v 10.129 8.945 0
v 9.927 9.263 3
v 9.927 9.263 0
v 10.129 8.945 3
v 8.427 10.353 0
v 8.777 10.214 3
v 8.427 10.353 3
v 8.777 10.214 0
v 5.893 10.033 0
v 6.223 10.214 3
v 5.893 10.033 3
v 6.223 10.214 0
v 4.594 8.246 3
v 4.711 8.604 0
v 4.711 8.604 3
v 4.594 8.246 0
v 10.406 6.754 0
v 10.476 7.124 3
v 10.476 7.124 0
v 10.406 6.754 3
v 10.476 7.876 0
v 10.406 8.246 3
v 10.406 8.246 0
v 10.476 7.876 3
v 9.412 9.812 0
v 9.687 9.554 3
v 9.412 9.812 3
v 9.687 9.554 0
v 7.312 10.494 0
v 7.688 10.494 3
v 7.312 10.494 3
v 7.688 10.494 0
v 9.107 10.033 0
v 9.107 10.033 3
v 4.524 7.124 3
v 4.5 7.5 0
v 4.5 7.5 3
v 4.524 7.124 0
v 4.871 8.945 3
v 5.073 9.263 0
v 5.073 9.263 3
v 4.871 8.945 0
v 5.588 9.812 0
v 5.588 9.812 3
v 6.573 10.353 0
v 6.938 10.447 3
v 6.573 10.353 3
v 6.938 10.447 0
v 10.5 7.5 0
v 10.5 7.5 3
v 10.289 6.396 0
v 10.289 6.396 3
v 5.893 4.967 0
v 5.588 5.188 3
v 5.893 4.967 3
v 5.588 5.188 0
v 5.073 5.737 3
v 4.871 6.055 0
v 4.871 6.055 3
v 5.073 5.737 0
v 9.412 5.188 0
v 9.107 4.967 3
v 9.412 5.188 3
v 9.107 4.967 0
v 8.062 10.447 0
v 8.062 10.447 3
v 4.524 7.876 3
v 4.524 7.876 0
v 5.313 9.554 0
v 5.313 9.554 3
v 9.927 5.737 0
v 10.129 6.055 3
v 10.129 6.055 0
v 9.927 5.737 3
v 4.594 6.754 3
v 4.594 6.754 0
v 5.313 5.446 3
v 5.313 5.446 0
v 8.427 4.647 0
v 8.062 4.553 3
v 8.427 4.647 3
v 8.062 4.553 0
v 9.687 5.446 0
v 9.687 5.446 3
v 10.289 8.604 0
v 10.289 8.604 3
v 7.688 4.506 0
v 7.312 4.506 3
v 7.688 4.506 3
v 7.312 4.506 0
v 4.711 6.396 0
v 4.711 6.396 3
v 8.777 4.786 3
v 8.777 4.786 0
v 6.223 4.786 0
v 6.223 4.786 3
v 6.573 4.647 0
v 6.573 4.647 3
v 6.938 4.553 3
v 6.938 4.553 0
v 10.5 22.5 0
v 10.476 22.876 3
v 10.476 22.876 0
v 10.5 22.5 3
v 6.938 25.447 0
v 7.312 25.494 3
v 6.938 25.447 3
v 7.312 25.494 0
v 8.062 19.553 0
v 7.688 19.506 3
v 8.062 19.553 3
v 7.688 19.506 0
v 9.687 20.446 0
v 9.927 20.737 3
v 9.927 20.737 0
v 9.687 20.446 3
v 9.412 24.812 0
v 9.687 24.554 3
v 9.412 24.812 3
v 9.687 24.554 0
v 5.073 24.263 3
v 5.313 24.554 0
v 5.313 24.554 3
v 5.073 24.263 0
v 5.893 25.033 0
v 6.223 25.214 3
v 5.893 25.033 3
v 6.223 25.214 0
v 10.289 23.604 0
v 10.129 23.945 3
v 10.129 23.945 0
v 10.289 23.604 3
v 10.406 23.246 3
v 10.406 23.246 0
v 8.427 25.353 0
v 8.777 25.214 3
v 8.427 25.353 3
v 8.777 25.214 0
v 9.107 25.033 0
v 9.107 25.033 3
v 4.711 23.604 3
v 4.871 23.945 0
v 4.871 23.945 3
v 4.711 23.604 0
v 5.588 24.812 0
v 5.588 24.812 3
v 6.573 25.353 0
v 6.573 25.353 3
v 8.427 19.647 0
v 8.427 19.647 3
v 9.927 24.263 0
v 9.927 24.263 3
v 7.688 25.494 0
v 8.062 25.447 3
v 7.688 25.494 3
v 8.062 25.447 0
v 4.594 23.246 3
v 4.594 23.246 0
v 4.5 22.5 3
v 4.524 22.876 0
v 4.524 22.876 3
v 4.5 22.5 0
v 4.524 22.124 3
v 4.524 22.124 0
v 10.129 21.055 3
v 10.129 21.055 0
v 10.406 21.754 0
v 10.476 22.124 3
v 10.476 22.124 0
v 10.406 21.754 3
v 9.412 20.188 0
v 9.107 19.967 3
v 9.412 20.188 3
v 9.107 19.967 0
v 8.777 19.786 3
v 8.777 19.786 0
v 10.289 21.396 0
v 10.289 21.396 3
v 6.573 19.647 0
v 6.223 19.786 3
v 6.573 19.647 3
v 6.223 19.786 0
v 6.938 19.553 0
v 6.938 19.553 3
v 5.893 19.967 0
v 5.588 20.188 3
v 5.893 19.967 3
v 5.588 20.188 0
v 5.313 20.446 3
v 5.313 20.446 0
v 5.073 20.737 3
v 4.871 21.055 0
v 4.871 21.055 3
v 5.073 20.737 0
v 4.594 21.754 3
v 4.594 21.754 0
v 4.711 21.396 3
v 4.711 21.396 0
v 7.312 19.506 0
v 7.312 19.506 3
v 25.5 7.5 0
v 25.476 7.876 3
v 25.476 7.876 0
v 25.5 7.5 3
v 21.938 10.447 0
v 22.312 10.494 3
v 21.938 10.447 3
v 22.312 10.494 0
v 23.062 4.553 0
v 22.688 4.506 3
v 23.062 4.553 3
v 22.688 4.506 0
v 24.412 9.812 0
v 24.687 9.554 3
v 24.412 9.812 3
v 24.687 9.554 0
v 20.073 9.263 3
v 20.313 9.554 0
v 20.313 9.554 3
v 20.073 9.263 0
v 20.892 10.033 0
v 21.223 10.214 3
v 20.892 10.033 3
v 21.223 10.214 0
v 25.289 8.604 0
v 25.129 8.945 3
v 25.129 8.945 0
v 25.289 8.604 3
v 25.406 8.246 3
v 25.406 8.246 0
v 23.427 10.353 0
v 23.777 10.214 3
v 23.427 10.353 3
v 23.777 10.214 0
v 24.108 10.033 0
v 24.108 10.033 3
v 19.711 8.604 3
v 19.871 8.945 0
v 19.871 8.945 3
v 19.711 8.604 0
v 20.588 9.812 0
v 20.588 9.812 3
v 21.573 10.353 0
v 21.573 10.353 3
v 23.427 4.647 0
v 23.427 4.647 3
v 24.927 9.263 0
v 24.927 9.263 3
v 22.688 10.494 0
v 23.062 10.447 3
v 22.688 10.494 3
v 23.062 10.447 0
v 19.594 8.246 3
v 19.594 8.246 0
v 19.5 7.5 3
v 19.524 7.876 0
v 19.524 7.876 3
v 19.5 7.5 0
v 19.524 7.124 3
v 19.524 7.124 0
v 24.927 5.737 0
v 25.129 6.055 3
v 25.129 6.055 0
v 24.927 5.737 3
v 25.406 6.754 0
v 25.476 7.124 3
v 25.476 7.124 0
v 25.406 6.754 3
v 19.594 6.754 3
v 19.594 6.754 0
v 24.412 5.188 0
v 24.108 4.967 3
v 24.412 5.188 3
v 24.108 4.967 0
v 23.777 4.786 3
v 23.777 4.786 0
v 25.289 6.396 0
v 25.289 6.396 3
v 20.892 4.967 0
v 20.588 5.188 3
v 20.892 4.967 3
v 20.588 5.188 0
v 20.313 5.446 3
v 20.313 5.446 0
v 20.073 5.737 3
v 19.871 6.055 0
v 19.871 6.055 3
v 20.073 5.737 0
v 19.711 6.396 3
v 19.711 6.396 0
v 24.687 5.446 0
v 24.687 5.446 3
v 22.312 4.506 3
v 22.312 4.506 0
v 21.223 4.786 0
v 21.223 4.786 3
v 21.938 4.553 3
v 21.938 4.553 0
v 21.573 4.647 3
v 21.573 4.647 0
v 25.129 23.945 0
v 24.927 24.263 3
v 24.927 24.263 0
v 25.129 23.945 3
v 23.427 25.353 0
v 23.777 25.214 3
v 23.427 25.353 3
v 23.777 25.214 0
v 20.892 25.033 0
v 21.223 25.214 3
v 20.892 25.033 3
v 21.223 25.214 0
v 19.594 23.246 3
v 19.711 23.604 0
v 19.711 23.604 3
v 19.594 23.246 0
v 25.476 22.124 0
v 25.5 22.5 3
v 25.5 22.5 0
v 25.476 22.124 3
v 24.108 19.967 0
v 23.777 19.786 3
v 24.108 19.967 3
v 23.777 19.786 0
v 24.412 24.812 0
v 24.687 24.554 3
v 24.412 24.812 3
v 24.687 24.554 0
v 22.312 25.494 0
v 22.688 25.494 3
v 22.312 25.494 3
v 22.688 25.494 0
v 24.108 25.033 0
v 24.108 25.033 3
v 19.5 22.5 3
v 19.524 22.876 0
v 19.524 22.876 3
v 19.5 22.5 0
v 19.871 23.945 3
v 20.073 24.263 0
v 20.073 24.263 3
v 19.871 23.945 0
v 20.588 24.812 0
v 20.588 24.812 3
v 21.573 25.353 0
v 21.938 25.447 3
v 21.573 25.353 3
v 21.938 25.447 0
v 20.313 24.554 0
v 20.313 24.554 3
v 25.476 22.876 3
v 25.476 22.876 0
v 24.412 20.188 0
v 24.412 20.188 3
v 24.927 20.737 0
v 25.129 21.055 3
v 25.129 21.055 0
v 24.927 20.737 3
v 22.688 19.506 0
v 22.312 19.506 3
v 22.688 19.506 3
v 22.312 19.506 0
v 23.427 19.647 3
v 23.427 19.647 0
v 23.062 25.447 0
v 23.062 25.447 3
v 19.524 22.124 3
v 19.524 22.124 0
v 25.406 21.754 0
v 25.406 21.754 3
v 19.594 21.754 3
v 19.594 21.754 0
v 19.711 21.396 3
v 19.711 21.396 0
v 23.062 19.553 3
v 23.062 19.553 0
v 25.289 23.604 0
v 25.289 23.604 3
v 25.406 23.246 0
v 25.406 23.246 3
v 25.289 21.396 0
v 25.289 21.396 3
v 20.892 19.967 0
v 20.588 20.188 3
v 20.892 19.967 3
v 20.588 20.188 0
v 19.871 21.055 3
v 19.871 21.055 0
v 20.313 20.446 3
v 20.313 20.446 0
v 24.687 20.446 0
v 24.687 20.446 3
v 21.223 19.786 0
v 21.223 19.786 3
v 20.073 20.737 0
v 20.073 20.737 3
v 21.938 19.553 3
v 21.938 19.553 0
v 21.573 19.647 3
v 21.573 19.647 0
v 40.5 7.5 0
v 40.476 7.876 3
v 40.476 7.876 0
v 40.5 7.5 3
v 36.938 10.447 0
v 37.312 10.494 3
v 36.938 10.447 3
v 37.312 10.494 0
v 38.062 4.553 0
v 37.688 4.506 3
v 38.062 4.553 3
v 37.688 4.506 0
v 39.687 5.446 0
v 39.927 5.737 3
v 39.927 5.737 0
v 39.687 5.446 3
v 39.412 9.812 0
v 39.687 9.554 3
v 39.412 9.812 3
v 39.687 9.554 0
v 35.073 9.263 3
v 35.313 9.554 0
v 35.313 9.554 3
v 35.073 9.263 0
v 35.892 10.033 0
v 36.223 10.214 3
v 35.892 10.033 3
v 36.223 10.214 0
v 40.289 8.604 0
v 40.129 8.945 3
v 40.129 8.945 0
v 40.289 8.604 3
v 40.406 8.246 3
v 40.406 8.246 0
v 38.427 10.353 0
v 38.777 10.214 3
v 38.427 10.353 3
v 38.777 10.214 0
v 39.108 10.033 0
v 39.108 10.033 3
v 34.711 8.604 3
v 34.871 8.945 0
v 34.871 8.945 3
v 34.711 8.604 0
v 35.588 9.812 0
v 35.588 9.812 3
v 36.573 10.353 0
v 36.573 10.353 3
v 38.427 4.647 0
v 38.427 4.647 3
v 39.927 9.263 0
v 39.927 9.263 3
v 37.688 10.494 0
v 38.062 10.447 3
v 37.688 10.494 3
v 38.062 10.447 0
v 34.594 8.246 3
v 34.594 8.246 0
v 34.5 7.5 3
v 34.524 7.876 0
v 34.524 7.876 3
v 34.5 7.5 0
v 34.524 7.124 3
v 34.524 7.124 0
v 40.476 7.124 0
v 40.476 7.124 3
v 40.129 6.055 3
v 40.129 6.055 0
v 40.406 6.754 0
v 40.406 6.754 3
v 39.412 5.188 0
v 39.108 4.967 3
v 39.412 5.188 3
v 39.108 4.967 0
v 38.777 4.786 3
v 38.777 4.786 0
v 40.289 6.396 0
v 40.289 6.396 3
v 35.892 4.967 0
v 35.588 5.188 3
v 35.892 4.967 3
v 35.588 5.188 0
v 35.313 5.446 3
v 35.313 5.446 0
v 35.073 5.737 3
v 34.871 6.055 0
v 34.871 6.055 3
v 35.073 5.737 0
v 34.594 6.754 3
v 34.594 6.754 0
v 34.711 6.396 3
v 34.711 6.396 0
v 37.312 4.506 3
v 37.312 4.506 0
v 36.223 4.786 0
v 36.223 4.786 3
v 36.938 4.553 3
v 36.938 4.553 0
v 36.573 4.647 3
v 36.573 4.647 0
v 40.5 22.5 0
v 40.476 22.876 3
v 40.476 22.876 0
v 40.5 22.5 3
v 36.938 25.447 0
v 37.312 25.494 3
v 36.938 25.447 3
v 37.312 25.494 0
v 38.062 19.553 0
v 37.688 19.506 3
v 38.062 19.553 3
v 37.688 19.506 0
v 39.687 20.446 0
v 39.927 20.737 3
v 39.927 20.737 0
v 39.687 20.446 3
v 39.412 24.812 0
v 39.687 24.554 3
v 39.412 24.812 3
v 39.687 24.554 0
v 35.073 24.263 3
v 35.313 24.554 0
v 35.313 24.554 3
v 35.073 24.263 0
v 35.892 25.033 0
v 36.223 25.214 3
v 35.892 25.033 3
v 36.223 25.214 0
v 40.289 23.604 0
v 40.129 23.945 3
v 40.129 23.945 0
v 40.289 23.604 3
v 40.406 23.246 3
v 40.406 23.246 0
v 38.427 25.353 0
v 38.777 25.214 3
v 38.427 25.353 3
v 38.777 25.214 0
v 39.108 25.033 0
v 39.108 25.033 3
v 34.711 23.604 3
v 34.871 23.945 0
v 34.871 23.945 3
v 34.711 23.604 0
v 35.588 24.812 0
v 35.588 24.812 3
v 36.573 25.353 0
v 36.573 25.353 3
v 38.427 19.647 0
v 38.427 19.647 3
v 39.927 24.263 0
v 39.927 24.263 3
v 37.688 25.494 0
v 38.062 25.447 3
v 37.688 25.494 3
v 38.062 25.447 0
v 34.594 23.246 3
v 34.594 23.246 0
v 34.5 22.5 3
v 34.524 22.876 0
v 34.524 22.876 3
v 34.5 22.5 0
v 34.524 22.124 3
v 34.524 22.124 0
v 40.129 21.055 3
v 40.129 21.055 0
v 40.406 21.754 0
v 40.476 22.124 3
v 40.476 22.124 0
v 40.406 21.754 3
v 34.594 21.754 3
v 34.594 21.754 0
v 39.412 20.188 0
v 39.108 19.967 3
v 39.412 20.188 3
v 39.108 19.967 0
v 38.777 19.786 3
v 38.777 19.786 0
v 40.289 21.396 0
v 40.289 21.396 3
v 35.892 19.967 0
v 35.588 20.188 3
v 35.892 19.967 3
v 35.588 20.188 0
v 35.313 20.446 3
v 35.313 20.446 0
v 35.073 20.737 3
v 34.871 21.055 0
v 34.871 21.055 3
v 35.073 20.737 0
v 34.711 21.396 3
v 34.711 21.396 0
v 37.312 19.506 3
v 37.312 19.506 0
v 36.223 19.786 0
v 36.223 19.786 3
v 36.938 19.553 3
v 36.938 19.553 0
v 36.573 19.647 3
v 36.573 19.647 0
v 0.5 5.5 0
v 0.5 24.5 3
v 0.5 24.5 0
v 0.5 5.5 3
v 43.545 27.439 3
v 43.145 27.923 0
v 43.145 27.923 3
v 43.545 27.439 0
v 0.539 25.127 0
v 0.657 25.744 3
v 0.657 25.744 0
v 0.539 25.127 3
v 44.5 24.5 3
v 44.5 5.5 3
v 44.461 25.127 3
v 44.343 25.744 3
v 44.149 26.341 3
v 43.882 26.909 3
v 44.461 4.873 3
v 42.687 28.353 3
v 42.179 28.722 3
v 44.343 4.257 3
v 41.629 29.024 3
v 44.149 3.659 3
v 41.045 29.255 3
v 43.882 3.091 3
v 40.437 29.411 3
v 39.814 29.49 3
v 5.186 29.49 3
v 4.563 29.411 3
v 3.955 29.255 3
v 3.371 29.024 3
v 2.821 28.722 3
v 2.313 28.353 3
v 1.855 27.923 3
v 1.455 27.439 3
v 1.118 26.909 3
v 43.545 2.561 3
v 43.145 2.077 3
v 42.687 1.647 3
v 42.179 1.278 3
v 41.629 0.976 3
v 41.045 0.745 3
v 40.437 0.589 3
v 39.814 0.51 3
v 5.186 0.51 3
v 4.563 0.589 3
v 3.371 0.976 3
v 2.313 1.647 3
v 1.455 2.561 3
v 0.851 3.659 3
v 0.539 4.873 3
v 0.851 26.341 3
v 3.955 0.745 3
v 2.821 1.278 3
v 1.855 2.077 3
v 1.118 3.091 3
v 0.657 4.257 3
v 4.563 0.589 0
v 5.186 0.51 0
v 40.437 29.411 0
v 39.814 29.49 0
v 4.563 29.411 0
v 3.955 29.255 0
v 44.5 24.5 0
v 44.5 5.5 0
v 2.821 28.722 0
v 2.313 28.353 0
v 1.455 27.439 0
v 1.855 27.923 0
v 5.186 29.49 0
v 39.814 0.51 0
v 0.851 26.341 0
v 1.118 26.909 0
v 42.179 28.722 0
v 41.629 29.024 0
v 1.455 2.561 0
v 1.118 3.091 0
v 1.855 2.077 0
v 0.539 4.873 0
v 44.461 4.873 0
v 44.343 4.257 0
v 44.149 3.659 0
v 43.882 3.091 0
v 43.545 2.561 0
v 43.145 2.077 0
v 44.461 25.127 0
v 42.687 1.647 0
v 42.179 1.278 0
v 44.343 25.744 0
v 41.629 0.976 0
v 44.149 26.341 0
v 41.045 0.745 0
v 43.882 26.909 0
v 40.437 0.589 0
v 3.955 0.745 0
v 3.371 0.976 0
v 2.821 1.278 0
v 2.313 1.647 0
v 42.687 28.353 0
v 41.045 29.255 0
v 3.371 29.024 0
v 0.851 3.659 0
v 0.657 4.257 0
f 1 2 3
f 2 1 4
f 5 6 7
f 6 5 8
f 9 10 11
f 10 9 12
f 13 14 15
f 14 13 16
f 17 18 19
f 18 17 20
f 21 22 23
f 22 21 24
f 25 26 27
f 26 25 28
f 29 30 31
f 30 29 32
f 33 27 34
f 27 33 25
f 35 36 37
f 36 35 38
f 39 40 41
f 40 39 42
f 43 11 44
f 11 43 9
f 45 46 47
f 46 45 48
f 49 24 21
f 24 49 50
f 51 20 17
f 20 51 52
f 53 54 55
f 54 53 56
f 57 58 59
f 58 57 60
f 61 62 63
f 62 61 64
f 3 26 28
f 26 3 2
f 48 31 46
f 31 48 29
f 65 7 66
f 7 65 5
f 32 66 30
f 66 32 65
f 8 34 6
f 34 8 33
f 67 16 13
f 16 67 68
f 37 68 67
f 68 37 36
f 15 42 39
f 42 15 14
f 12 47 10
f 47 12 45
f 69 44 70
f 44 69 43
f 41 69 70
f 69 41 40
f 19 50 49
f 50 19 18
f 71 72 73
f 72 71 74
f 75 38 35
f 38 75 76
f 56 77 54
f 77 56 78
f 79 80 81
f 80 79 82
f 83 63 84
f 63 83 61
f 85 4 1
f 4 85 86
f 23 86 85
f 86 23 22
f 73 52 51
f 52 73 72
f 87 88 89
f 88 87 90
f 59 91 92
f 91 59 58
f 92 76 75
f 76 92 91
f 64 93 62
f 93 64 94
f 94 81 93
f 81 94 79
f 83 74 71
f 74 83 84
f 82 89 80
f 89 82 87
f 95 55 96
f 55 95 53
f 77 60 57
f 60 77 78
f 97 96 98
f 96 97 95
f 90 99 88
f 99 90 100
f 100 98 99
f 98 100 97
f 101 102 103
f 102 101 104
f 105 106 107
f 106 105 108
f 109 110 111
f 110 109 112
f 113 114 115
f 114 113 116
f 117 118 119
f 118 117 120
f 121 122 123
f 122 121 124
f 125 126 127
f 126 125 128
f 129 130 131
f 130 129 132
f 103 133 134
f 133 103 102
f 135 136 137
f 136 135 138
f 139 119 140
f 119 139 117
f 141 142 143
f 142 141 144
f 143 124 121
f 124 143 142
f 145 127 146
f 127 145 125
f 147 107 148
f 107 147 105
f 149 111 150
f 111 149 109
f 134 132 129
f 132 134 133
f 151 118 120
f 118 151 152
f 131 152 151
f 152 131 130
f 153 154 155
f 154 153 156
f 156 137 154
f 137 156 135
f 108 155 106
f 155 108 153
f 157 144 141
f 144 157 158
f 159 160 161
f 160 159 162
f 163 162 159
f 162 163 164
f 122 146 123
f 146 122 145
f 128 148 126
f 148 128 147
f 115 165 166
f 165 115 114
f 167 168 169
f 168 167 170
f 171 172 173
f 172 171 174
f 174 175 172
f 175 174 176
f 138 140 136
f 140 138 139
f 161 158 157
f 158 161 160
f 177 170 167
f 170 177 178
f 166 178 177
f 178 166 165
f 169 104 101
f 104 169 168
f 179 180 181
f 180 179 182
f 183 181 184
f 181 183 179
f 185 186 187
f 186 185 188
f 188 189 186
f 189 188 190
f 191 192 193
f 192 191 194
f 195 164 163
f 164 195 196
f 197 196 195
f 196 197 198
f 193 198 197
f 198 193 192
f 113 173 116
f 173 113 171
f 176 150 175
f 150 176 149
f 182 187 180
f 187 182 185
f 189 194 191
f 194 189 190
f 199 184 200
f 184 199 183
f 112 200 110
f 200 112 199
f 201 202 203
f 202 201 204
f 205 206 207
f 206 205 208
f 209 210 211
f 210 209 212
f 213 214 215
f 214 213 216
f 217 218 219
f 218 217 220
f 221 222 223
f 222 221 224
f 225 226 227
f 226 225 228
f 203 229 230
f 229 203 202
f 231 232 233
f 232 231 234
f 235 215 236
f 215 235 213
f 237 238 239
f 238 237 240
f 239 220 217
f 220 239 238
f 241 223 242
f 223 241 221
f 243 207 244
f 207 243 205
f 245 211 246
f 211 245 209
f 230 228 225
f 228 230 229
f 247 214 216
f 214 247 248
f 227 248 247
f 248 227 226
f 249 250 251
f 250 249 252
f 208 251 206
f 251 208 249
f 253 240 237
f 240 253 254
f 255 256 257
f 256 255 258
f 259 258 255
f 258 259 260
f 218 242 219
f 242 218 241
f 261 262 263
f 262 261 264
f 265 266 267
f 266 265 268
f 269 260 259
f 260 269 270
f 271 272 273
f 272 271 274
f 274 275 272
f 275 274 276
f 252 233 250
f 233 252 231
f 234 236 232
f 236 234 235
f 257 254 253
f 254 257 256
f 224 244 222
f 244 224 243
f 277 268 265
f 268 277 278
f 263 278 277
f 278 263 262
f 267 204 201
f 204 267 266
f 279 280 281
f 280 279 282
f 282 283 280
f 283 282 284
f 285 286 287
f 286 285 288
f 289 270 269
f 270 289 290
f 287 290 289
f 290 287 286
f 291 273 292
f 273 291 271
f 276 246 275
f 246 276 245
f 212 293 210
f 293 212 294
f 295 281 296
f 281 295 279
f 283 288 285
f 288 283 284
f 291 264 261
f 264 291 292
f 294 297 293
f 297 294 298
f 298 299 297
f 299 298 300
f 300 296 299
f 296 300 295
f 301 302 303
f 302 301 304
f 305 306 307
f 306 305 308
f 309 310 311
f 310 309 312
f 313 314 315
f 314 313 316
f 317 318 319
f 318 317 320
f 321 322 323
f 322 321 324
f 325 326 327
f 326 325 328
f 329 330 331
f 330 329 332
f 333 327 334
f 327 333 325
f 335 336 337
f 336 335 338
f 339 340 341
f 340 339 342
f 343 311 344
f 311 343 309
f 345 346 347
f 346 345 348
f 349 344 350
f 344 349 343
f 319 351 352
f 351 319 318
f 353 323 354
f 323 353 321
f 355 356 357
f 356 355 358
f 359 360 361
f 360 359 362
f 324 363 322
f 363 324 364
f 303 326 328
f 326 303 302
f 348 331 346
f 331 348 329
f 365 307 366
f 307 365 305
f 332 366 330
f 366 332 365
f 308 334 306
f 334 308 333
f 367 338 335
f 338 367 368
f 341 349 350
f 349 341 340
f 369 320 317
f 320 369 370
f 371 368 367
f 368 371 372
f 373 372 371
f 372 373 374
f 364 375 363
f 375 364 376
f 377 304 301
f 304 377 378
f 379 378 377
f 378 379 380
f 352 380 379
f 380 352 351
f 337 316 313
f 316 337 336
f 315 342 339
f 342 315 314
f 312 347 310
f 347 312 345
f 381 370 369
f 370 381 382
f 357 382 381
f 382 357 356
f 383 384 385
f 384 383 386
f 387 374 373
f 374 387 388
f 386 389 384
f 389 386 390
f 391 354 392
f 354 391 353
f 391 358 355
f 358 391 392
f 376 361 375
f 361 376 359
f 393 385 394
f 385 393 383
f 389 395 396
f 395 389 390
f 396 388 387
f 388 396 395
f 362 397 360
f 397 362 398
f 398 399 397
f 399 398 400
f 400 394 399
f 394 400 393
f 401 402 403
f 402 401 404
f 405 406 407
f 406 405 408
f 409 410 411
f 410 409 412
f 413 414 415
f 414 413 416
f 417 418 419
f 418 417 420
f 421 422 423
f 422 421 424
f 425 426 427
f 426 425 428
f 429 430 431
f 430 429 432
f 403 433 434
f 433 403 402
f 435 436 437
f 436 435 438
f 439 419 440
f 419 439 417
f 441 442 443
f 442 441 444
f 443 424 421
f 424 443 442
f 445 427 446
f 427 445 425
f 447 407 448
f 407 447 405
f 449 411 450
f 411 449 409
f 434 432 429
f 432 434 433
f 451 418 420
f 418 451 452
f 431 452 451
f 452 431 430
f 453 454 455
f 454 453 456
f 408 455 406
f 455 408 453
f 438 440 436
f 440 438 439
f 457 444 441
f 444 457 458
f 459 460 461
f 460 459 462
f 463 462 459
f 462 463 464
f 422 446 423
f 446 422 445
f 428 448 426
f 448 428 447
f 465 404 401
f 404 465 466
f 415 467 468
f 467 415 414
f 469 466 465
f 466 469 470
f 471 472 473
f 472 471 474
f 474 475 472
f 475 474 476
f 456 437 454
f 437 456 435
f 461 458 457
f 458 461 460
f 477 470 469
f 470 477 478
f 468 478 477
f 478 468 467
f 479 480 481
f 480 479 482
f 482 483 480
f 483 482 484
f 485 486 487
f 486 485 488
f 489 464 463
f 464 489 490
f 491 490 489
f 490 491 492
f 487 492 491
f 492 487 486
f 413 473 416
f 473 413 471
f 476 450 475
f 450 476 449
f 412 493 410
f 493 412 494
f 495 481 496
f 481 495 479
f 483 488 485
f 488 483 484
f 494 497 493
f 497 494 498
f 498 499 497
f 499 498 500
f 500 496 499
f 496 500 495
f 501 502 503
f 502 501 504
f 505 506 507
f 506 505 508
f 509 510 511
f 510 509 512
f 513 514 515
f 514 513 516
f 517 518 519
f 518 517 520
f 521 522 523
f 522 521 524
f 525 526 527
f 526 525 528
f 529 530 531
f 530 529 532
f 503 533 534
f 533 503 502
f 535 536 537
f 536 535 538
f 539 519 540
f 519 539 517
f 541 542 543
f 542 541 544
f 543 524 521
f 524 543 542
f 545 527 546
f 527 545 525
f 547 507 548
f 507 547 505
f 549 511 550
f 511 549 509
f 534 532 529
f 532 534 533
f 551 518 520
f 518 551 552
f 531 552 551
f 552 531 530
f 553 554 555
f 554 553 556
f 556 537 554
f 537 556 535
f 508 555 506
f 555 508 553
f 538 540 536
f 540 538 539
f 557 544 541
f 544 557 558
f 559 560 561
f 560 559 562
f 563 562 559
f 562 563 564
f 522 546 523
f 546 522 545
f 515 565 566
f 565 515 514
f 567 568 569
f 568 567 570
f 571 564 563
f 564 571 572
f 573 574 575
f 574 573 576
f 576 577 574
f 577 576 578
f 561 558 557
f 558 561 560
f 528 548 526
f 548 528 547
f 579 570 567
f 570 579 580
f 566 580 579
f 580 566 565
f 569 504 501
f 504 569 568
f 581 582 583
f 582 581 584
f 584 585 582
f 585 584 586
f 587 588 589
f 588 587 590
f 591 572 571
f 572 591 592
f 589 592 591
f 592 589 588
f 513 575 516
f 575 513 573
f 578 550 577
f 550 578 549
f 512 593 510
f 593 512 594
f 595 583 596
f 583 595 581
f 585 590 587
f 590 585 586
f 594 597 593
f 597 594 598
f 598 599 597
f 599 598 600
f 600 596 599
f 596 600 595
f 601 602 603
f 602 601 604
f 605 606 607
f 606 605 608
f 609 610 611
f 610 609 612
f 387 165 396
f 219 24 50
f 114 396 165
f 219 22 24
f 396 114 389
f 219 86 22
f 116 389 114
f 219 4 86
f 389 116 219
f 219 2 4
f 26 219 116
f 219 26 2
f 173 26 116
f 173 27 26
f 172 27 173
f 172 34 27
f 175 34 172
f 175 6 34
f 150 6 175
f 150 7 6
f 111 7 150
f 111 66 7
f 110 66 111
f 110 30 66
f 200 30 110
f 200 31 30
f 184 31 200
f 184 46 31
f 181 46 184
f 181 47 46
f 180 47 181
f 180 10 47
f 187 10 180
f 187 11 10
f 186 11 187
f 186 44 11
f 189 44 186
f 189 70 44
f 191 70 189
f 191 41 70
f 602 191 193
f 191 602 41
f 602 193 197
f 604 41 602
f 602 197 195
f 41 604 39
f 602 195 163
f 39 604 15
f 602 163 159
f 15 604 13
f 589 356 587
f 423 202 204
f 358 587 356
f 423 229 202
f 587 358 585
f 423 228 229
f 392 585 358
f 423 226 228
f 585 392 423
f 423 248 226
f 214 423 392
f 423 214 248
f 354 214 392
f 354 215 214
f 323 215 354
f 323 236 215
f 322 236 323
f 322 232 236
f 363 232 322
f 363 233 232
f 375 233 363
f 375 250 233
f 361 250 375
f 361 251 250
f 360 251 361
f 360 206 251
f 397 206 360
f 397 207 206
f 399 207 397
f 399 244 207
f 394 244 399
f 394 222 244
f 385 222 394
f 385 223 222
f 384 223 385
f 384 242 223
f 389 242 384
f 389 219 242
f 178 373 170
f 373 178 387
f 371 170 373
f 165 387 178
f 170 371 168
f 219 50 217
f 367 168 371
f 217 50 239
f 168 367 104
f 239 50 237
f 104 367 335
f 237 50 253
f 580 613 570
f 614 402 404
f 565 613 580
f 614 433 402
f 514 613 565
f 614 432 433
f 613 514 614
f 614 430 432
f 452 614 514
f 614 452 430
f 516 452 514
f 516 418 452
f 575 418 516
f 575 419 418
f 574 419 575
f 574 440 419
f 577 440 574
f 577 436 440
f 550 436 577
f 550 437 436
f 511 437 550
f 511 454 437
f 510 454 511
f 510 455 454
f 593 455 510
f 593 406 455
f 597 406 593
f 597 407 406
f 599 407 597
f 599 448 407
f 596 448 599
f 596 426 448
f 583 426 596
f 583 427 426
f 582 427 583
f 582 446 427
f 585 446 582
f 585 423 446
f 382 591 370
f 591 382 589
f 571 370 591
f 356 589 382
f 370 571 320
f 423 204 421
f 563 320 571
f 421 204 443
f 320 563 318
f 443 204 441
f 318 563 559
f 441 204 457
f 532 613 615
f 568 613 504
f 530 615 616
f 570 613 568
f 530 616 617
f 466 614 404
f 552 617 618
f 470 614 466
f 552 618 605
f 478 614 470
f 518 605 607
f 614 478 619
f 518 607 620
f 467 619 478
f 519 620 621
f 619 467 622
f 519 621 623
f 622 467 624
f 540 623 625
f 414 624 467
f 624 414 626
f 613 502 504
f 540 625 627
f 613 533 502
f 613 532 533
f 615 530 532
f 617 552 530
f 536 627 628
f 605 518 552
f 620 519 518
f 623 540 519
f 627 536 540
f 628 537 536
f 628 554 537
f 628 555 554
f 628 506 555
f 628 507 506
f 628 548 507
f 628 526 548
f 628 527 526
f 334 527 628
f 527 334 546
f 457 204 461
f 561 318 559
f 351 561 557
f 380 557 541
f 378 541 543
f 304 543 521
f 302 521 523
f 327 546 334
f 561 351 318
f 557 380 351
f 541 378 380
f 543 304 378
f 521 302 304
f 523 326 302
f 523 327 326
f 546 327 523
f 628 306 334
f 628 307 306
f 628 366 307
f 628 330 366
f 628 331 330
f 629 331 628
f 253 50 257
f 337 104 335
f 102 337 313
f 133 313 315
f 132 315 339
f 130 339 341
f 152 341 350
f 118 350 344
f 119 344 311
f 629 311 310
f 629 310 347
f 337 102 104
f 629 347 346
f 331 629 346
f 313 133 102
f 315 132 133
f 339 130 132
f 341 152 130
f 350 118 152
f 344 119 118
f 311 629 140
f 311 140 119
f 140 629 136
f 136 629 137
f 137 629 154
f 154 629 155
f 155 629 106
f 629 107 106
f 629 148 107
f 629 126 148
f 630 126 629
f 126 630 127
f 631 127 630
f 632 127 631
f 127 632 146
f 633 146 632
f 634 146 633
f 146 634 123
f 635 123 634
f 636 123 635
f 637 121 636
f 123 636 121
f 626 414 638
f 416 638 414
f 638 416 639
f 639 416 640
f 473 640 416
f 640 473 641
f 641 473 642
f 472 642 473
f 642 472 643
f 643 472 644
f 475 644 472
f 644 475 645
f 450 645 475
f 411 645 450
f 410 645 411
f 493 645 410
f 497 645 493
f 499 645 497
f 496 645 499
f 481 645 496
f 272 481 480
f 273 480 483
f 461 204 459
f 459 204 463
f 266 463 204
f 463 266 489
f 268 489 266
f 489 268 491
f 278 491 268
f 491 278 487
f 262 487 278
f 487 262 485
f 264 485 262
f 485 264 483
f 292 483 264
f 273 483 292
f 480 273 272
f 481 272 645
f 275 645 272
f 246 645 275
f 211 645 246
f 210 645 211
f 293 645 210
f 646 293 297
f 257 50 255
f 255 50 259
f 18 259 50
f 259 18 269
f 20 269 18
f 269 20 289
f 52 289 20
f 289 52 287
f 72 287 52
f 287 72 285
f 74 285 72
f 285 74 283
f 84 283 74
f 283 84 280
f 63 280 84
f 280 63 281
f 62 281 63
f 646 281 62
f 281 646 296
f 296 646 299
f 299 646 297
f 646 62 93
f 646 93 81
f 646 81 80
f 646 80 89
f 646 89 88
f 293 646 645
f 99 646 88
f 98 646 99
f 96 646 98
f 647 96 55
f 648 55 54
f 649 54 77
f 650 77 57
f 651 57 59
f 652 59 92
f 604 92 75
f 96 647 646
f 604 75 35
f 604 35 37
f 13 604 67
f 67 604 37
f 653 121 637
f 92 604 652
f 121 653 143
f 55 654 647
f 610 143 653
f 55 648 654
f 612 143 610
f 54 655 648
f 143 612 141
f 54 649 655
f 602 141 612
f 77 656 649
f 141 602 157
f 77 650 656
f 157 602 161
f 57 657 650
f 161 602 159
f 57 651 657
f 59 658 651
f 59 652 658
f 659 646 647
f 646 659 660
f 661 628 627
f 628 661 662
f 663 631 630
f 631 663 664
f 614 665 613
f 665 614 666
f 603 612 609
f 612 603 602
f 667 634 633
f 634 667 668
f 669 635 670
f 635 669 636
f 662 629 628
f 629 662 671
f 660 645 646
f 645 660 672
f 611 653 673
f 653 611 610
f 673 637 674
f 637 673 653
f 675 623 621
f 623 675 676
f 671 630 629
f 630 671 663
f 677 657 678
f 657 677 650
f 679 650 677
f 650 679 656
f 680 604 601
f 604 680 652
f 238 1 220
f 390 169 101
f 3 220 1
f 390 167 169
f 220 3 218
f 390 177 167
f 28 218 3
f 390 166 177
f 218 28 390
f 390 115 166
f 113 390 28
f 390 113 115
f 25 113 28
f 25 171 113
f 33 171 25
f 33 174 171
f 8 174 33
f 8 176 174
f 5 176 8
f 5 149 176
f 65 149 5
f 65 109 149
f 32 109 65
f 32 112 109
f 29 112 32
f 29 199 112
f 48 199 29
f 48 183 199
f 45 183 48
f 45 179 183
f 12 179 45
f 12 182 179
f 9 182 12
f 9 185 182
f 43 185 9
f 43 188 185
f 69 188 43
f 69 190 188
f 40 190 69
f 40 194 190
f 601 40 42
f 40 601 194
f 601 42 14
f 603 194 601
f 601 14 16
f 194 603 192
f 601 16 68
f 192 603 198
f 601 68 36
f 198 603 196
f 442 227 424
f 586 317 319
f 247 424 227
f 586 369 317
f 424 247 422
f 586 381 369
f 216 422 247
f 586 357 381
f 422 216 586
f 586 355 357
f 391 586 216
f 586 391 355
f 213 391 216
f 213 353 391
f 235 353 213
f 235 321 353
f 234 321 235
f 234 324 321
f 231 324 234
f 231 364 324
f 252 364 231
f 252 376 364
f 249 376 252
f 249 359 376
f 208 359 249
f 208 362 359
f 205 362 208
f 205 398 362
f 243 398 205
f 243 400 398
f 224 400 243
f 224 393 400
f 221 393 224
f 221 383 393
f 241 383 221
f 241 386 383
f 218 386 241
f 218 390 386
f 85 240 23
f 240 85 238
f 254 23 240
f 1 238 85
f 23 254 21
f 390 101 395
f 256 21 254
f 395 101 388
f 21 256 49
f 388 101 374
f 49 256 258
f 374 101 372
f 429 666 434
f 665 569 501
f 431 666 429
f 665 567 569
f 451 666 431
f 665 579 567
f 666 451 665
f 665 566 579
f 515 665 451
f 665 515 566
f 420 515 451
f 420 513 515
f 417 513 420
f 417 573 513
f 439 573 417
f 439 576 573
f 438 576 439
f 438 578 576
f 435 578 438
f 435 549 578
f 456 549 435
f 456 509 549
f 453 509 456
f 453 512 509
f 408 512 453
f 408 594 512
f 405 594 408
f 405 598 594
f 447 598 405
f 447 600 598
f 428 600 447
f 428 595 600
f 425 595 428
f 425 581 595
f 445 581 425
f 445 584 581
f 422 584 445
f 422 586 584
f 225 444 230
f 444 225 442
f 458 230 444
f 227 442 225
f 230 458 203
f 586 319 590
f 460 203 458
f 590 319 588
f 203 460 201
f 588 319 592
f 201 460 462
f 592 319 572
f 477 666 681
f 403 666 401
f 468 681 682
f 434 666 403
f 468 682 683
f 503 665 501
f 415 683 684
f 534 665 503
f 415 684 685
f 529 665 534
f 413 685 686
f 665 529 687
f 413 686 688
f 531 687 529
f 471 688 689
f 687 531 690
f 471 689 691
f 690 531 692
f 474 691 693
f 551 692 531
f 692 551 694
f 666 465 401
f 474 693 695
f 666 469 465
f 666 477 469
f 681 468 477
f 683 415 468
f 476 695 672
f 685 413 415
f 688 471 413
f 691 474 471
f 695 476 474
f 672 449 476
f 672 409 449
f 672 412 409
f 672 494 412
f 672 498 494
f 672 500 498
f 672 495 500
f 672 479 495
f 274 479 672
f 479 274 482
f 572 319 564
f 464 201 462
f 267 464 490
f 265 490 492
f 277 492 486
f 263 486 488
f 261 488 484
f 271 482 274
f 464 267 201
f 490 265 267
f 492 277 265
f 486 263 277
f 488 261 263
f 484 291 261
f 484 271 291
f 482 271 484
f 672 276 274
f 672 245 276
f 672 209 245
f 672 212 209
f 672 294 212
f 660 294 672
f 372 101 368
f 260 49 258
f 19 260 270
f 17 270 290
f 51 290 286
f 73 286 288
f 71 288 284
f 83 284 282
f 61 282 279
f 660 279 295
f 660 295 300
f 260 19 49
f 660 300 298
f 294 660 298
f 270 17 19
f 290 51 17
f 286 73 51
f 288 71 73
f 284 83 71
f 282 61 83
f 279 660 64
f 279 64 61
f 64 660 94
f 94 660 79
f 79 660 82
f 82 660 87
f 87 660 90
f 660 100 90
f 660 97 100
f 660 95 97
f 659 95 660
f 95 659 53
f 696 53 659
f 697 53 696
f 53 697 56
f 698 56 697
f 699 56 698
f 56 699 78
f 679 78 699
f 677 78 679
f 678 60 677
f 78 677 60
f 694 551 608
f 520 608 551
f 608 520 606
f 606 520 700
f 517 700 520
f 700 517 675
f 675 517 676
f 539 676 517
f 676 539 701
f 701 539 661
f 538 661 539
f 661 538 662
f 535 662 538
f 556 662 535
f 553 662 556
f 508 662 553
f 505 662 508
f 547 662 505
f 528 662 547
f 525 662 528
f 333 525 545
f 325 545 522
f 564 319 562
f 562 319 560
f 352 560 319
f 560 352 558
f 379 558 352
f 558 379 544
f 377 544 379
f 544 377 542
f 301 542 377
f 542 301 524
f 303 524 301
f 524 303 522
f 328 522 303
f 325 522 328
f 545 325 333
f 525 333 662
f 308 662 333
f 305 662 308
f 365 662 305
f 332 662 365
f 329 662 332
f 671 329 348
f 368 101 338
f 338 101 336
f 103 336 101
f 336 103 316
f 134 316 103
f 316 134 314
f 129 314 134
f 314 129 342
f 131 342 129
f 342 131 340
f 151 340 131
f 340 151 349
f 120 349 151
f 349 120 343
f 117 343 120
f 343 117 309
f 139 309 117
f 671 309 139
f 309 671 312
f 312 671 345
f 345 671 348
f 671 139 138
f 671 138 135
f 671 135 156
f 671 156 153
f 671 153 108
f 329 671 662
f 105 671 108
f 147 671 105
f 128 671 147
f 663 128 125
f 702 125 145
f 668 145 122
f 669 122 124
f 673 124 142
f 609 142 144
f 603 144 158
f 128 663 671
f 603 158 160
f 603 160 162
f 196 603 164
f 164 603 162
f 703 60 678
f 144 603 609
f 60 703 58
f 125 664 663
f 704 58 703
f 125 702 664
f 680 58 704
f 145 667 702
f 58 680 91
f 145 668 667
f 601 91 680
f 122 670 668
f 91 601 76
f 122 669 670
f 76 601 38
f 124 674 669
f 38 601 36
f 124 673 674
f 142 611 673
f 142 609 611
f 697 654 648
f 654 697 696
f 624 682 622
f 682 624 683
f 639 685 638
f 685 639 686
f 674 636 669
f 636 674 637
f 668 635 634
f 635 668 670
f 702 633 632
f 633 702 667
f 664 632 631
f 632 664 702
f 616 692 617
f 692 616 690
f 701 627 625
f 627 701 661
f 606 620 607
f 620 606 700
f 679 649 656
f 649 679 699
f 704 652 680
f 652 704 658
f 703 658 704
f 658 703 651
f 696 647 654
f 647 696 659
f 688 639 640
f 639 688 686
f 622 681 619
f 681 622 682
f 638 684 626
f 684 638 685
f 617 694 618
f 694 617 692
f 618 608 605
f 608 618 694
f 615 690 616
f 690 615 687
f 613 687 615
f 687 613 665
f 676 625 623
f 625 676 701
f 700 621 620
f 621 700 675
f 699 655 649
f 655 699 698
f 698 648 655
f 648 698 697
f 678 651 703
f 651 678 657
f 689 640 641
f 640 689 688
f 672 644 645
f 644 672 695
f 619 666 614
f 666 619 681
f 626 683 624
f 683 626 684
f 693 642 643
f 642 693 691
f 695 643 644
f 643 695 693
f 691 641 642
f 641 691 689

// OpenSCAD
// Generated by SolidPython 1.1.3 on 2023-01-09 14:53:22
$fn = 50;


difference() {
	union() {
		translate(v = [22.5000000000, 15.0000000000, 0]) {
			rotate(a = [0, 0, 0]) {
				hull() {
					translate(v = [-17.0000000000, 9.5000000000, 0]) {
						rotate(a = [0, 0, 0]) {
							translate(v = [0, 0, 0]) {
								rotate(a = [0, 0, 0]) {
									cylinder(h = 3, r = 5);
								}
							}
						}
					}
					translate(v = [17.0000000000, 9.5000000000, 0]) {
						rotate(a = [0, 0, 0]) {
							translate(v = [0, 0, 0]) {
								rotate(a = [0, 0, 0]) {
									cylinder(h = 3, r = 5);
								}
							}
						}
					}
					translate(v = [-17.0000000000, -9.5000000000, 0]) {
						rotate(a = [0, 0, 0]) {
							translate(v = [0, 0, 0]) {
								rotate(a = [0, 0, 0]) {
									cylinder(h = 3, r = 5);
								}
							}
						}
					}
					translate(v = [17.0000000000, -9.5000000000, 0]) {
						rotate(a = [0, 0, 0]) {
							translate(v = [0, 0, 0]) {
								rotate(a = [0, 0, 0]) {
									cylinder(h = 3, r = 5);
								}
							}
						}
					}
				}
			}
		}
	}
	union() {
		translate(v = [7.5000000000, 7.5000000000, 0]) {
			rotate(a = [0, 0, 0]) {
				translate(v = [0, 0, -50]) {
					rotate(a = [0, 0, 0]) {
						cylinder(h = 100, r = 3.0000000000);
					}
				}
			}
		}
		translate(v = [7.5000000000, 22.5000000000, 0]) {
			rotate(a = [0, 0, 0]) {
				translate(v = [0, 0, -50]) {
					rotate(a = [0, 0, 0]) {
						cylinder(h = 100, r = 3.0000000000);
					}
				}
			}
		}
		translate(v = [22.5000000000, 7.5000000000, 0]) {
			rotate(a = [0, 0, 0]) {
				translate(v = [0, 0, -50]) {
					rotate(a = [0, 0, 0]) {
						cylinder(h = 100, r = 3.0000000000);
					}
				}
			}
		}
		translate(v = [22.5000000000, 22.5000000000, 0]) {
			rotate(a = [0, 0, 0]) {
				translate(v = [0, 0, -50]) {
					rotate(a = [0, 0, 0]) {
						cylinder(h = 100, r = 3.0000000000);
					}
				}
			}
		}
		translate(v = [37.5000000000, 7.5000000000, 0]) {
			rotate(a = [0, 0, 0]) {
				translate(v = [0, 0, -50]) {
					rotate(a = [0, 0, 0]) {
						cylinder(h = 100, r = 3.0000000000);
					}
				}
			}
		}
		translate(v = [37.5000000000, 22.5000000000, 0]) {
			rotate(a = [0, 0, 0]) {
				translate(v = [0, 0, -50]) {
					rotate(a = [0, 0, 0]) {
						cylinder(h = 100, r = 3.0000000000);
					}
				}
			}
		}
	}
}
/***********************************************
*********      SolidPython code:      **********
************************************************
 
from solid import *
import os
import subprocess

import oomB

import opsc_library_gen

mode = "laser"
#mode = "3d_print"

defined_objects = {}

radius_dict = {}
countersunk_dict = {}


def set_mode(m):
    global mode
    mode = m
    radius_dict['M6'] = 6.5/2
    radius_dict['M3'] = 3.3/2
    if mode == "laser":
        radius_dict['M6'] = 6/2
        radius_dict['M3'] = 3/2

    countersunk_dict['M3'] = {}
    countersunk_dict['M3']['little_rad'] = radius_dict['M3']
    countersunk_dict['M3']['big_rad'] = (5.5+0.6)/2
    if mode == "laser":
        countersunk_dict['M3']['big_rad'] = (4.75+0.6)/2
        countersunk_dict['M3']['little_rad'] = (4.75+0.6)/2

    countersunk_dict['M3']['height'] = 1.7


def opsc_make_object(filename, objects, save_type="none",resolution=50, layers = 1, tilediff = 200, mode="laser"):
    set_mode(mode)
    save_type = save_type.lower()
    os.makedirs(os.path.dirname(filename), exist_ok=True)
    final_object = opsc_get_object(objects)
    # Save the final object to the specified filename    
    scad_render_to_file(final_object, filename, file_header='$fn = %s;' % resolution, include_orig_code=True)
    if mode == "laser":
        filename_laser = filename.replace(".scad","-flat.scad")
        scad_render_to_file(getLaser(final_object, layers=layers, tilediff=tilediff), filename_laser, file_header='$fn = %s;' % resolution, include_orig_code=True)
        if save_type == "all":
            saveToAll(filename_laser)
        elif save_type == "dxf":
            saveToDxf(filename_laser)
    if save_type == "all":
        saveToAll(filename)
    elif save_type == "dxf":
        saveToDxf(filename)


def opsc_get_object(objects):
    # Create the solidpython objects
    positive_objects = [get_opsc_item(obj) for obj in objects if obj['type'] == 'positive']
    negative_objects = [get_opsc_item(obj) for obj in objects if obj['type'] == 'negative']
    # Union the positive objects
    positive_object = union()(*positive_objects)
    # Union the negative objects
    negative_object = union()(*negative_objects)
    # Create the final object by subtracting the negative objects from the positive objects
    return difference()(positive_object, negative_object)

def get_opsc_item(params):
    # A dictionary to map radius string values to numerical values
    #radius_dict = {'small': 5, 'medium': 10, 'large': 15}
    # An array of function names for basic shapes
    basic_shapes = ['cube', 'sphere', 'cylinder']
    
    # An array of function names for other shapes
    other_shapes = ['hole', 'slot', 'rounded_rectangle', 'countersunk']
    


    # Convert radius to r if present, and remove radius from the params dictionary
    if 'radius' in params:
        if isinstance(params['radius'], str):
            # Use the radius_dict to map the radius string value to a numerical value
            params['r'] = radius_dict[params['radius']]
        else:
            params['r'] = params['radius']
        del params['radius']
    

    # Check if the object type is a basic shape
    if params['shape'] in basic_shapes:
        # Remove shape and unexpected dictionary values
        allowed_keys = {'size', 'r', 'r1', 'r2', 'd', 'h', 'rw', 'rh', 'dw', 'dh'}
        shape_params = {k: v for k, v in params.items() if k in allowed_keys}

        # Call the corresponding function for the shape parameter, using ** notation to pass the shape_params dictionary as keyword arguments
        return get_opsc_transform(params,globals()[params['shape']](**shape_params))
    
    # If the object type is not a basic shape, check if it's a defined object or one of the other shapes
    elif params['shape'] in other_shapes:
        # Call the corresponding function for the shape parameter, passing the params dictionary as an argument
        p2 = copy.deepcopy(params)
        p2["pos"] = [0,0,0]
        return get_opsc_transform(params,globals()[params['shape']](p2))
    
    # If the object is not a basic shape or a defined object, try to import it from a .scad file
    else:
        obj = defined_objects[params['shape']]
        return get_opsc_transform(params,obj)

def get_opsc_transform(params, solid_obj):
    # Rotate the object based on the 'rot' field in the params dictionary, or the 'rotX', 'rotY', and 'rotZ' fields if 'rot' is not present
    rot = params.get('rot', [])
    if rot:
        rotX, rotY, rotZ = rot
    else:
        rotX = params.get('rotX', 0)
        rotY = params.get('rotY', 0)
        rotZ = params.get('rotZ', 0)
    solid_obj = rotate([rotX, rotY, rotZ])(solid_obj)

    # Translate the object based on the 'pos' field in the params dictionary, or the 'x', 'y', and 'z' fields if 'pos' is not present
    pos = params.get('pos', [])
    if pos:
        x, y, z = pos
    else:
        x = params.get('x', 0)
        y = params.get('y', 0)
        z = params.get('z', 0)
    solid_obj = translate([x, y, z])(solid_obj)
    return solid_obj


import random

def opsc_easy_array(type, shape, repeats, pos_start, shift_arr, **kwargs):
    for i in range(0,3):
        repeats.append(1)
        pos_start.append(0)
        shift_arr.append(0)
    return_objects = []

    for x in range(0,repeats[0]):
        for y in range(0,repeats[1]):
            for z in range(0,repeats[2]):
                return_objects.append(opsc_easy(type, shape, pos=[pos_start[0]+x*shift_arr[0],pos_start[1]+y*shift_arr[1],pos_start[2]+z*shift_arr[2]], **kwargs))
    return return_objects                



def opsc_easy(type, shape, **kwargs):
    obj = {
        'type': type,
        'shape': shape
    }
    for param in ['size', 'r', 'r1', 'r2', 'd', 'h', 'rw', 'rh', 'dw', 'dh', 'pos', 'x', 'y', 'z', 'rot', 'rotX', 'rotY', 'rotZ', "w"]:
        if param in kwargs:
            obj[param] = kwargs[param]
    return obj

def hole(params):
    p2 = copy.deepcopy(params)  
    # Check if the radius is a string and replace it with the corresponding value from the dictionary
    if isinstance(p2['r'], str):
        p2['r'] = radius_dict[p2['r']]
    
    # Set the height to 100 if not specified
    if 'h' not in p2:
        p2['h'] = 100
        p2["pos"] = [0,0,-50]
    p2["center"] = True
    # Create the cylinder object
    p2["shape"] = "cylinder"
    p2["type"] = "positive"

    return get_opsc_item(p2)

import copy

def countersunk(params):
    p2 = copy.deepcopy(params)
    counter_rad = p2['r']
    p2['r'] = radius_dict[p2['r']]
    hp = copy.deepcopy(p2)
    hp["type"] = "positive"
    hp["shape"] = "hole"
    del hp["rot"]
    hol = get_opsc_item(hp)
    
    cp = copy.deepcopy(p2)
    cp["h"] = countersunk_dict[counter_rad]["height"]
    cp["r2"] = countersunk_dict[counter_rad]["little_rad"]
    cp["r1"] = countersunk_dict[counter_rad]["big_rad"]
    del cp["r"]
    del cp["rot"]
    cp["type"] = "positive"
    cp["shape"] = "cylinder"
    cp["pos"] = [0,0,0]

    top = get_opsc_item(cp)
    return union()(hol,top)



def slot(params):  
    p2 = copy.deepcopy(params) 
    if isinstance(p2['r'], str):
        p2['r'] = radius_dict[p2['r']]
    p2["type"] = "positive"
    p2["shape"] = "hole"
    del p2["rot"]
    p2["pos"] = [0,0,0]
    left = copy.deepcopy(p2)
    right = copy.deepcopy(p2)
    left["pos"][0] = p2["w"] / 2 - p2["r"] 
    
    right["pos"][0] = -p2["w"] / 2 + p2["r"] 
    pass
    leftObj = get_opsc_item(left)
    rightObj = get_opsc_item(right)
    return hull()(leftObj, rightObj)

def rounded_rectangle(params):   
    p2 = copy.deepcopy(params) 
    p2["h"] = p2["size"][2]
    p2["pos"] = p2.get("pos", [0, 0, 0]) 
    p2["type"] = "positive"
    p2["shape"] = "hole"
    p2["pos"] = [0,0,0]
    
    if 'rot' in p2:
        del p2["rot"]   
    if 'r' not in p2:
        p2["r"] = 5 
    tl = copy.deepcopy(p2)
    tr = copy.deepcopy(p2)
    bl = copy.deepcopy(p2)
    br = copy.deepcopy(p2)
    tl["pos"][0] = -(p2["size"][0] - p2["r"]*2)/2
    tl["pos"][1] = (p2["size"][1] - p2["r"]*2)/2
    tr["pos"][0] = (p2["size"][0] - p2["r"]*2)/2
    tr["pos"][1] = (p2["size"][1] - p2["r"]*2)/2
    bl["pos"][0] = -(p2["size"][0] - p2["r"]*2)/2
    bl["pos"][1] = -(p2["size"][1] - p2["r"]*2)/2
    br["pos"][0] = (p2["size"][0] - p2["r"]*2)/2
    br["pos"][1] = -(p2["size"][1] - p2["r"]*2)/2
    del tl["size"]
    del tr["size"]
    del bl["size"]
    del br["size"]
    tlo = get_opsc_item(tl)
    tro = get_opsc_item(tr)
    blo = get_opsc_item(bl)
    bro = get_opsc_item(br)    
    return hull()(tlo, tro, blo, bro)



def import_scad_object(filename):
    # Import the .scad file and convert it to a solidpython object
    #filename = "parts"
    obj = import_scad(filename)
    return obj.main()
    


import os
import solid as solidpython

# A dictionary to store the defined objects


def load_scad_objects():
    opsc_library_gen.gen_library(defined_objects)

import random

def test(num_objects):
    objects = []
    for i in range(num_objects):
        # Choose a random shape
        #shape = random.choice(['cube', 'sphere', 'cylinder', 'hole', 'slot', "rounded_rectangle"])
        shape = random.choice(["rounded_rectangle"])

        # Choose a random type
        type = random.choice(['positive', 'negative'])
        
        # Create an empty object dictionary
        obj = {'shape': shape, 'type': type}
        
        # Set shape-specific parameters
        if obj['shape'] in ['cube']:
            obj['size'] =  [random.uniform(5, 15), random.uniform(5, 15), random.uniform(5, 15)]
        if obj['shape'] in ['rounded_rectangle']:
            obj['size'] =  [random.uniform(5, 15), random.uniform(5, 15), random.uniform(5, 15)]
            obj['r'] = random.uniform(0.5, 5)
        elif obj['shape'] == 'sphere':
            obj['r'] = random.uniform(5, 15)
        elif obj['shape'] in ['cylinder', 'hole']:
            obj['r'] = random.uniform(0.5, 5)
            obj['h'] = random.uniform(5, 15)
        elif obj['shape'] == 'slot':
            obj['r'] = random.uniform(0.5, 5)
            obj['h'] = random.uniform(5, 15)
            obj['w'] = random.uniform(5, 15)
        
        # Set a random position and rotation
        obj['pos'] = [random.uniform(-20, 20), random.uniform(-20, 20), random.uniform(-20, 20)]
        obj['rot'] = [random.uniform(-180, 180), random.uniform(-180, 180), random.uniform(-180, 180)]
        
        # Add the object to the list
        objects.append(obj)
    return objects

####### old file saving
def saveToAll(fileIn):
    saveToDxf(fileIn)
    saveToPng(fileIn)
    saveToStl(fileIn)
    saveToSvg(fileIn)

def saveToDxf(fileIn, fileOut="", copy_to_laser=True):
    if fileOut == "":
        fileOut = fileIn.replace(".scad",".dxf")
    saveToFile(fileIn, fileOut)


    
def saveToPng(fileIn, fileOut="",extra="--render"):
    if fileOut == "":
        fileOut = fileIn.replace(".scad",".png")
    saveToFile(fileIn, fileOut)

def saveToStl(fileIn, fileOut=""):
    if fileOut == "":
        fileOut = fileIn.replace(".scad",".stl")
    saveToFile(fileIn, fileOut)
    
def saveToSvg(fileIn, fileOut=""):
    if fileOut == "":
        fileOut = fileIn.replace(".scad",".svg")
    saveToFile(fileIn, fileOut)

def saveToFile(fileIn, fileOut,extra=""):
    #extra = extra + " --colorscheme Tomorrow"

    launchStr = 'openscad -o "' + fileOut + '"' + extra + ' "' + fileIn + '"'
    if ".png" in fileOut:
        launchStr = launchStr + " --render"
    print("            saveToFile launch string: " + launchStr)
    subprocess.run(launchStr)
    x=0

def getLaser(final_object,start=1.5,layers=1,thickness=3,tilediff=200):
        rv= []

        for x in range(layers):
            rv.append(translate([0,x*tilediff,0])(
                    projection()(
                        intersection()(translate([-500,-500,start+x*thickness])(cube(size=[1000,1000,0.1])),
                            final_object
                        )
                    )
            )
            )
            
        return union()(rv)

set_mode("laser")
load_scad_objects() 
 
************************************************/
